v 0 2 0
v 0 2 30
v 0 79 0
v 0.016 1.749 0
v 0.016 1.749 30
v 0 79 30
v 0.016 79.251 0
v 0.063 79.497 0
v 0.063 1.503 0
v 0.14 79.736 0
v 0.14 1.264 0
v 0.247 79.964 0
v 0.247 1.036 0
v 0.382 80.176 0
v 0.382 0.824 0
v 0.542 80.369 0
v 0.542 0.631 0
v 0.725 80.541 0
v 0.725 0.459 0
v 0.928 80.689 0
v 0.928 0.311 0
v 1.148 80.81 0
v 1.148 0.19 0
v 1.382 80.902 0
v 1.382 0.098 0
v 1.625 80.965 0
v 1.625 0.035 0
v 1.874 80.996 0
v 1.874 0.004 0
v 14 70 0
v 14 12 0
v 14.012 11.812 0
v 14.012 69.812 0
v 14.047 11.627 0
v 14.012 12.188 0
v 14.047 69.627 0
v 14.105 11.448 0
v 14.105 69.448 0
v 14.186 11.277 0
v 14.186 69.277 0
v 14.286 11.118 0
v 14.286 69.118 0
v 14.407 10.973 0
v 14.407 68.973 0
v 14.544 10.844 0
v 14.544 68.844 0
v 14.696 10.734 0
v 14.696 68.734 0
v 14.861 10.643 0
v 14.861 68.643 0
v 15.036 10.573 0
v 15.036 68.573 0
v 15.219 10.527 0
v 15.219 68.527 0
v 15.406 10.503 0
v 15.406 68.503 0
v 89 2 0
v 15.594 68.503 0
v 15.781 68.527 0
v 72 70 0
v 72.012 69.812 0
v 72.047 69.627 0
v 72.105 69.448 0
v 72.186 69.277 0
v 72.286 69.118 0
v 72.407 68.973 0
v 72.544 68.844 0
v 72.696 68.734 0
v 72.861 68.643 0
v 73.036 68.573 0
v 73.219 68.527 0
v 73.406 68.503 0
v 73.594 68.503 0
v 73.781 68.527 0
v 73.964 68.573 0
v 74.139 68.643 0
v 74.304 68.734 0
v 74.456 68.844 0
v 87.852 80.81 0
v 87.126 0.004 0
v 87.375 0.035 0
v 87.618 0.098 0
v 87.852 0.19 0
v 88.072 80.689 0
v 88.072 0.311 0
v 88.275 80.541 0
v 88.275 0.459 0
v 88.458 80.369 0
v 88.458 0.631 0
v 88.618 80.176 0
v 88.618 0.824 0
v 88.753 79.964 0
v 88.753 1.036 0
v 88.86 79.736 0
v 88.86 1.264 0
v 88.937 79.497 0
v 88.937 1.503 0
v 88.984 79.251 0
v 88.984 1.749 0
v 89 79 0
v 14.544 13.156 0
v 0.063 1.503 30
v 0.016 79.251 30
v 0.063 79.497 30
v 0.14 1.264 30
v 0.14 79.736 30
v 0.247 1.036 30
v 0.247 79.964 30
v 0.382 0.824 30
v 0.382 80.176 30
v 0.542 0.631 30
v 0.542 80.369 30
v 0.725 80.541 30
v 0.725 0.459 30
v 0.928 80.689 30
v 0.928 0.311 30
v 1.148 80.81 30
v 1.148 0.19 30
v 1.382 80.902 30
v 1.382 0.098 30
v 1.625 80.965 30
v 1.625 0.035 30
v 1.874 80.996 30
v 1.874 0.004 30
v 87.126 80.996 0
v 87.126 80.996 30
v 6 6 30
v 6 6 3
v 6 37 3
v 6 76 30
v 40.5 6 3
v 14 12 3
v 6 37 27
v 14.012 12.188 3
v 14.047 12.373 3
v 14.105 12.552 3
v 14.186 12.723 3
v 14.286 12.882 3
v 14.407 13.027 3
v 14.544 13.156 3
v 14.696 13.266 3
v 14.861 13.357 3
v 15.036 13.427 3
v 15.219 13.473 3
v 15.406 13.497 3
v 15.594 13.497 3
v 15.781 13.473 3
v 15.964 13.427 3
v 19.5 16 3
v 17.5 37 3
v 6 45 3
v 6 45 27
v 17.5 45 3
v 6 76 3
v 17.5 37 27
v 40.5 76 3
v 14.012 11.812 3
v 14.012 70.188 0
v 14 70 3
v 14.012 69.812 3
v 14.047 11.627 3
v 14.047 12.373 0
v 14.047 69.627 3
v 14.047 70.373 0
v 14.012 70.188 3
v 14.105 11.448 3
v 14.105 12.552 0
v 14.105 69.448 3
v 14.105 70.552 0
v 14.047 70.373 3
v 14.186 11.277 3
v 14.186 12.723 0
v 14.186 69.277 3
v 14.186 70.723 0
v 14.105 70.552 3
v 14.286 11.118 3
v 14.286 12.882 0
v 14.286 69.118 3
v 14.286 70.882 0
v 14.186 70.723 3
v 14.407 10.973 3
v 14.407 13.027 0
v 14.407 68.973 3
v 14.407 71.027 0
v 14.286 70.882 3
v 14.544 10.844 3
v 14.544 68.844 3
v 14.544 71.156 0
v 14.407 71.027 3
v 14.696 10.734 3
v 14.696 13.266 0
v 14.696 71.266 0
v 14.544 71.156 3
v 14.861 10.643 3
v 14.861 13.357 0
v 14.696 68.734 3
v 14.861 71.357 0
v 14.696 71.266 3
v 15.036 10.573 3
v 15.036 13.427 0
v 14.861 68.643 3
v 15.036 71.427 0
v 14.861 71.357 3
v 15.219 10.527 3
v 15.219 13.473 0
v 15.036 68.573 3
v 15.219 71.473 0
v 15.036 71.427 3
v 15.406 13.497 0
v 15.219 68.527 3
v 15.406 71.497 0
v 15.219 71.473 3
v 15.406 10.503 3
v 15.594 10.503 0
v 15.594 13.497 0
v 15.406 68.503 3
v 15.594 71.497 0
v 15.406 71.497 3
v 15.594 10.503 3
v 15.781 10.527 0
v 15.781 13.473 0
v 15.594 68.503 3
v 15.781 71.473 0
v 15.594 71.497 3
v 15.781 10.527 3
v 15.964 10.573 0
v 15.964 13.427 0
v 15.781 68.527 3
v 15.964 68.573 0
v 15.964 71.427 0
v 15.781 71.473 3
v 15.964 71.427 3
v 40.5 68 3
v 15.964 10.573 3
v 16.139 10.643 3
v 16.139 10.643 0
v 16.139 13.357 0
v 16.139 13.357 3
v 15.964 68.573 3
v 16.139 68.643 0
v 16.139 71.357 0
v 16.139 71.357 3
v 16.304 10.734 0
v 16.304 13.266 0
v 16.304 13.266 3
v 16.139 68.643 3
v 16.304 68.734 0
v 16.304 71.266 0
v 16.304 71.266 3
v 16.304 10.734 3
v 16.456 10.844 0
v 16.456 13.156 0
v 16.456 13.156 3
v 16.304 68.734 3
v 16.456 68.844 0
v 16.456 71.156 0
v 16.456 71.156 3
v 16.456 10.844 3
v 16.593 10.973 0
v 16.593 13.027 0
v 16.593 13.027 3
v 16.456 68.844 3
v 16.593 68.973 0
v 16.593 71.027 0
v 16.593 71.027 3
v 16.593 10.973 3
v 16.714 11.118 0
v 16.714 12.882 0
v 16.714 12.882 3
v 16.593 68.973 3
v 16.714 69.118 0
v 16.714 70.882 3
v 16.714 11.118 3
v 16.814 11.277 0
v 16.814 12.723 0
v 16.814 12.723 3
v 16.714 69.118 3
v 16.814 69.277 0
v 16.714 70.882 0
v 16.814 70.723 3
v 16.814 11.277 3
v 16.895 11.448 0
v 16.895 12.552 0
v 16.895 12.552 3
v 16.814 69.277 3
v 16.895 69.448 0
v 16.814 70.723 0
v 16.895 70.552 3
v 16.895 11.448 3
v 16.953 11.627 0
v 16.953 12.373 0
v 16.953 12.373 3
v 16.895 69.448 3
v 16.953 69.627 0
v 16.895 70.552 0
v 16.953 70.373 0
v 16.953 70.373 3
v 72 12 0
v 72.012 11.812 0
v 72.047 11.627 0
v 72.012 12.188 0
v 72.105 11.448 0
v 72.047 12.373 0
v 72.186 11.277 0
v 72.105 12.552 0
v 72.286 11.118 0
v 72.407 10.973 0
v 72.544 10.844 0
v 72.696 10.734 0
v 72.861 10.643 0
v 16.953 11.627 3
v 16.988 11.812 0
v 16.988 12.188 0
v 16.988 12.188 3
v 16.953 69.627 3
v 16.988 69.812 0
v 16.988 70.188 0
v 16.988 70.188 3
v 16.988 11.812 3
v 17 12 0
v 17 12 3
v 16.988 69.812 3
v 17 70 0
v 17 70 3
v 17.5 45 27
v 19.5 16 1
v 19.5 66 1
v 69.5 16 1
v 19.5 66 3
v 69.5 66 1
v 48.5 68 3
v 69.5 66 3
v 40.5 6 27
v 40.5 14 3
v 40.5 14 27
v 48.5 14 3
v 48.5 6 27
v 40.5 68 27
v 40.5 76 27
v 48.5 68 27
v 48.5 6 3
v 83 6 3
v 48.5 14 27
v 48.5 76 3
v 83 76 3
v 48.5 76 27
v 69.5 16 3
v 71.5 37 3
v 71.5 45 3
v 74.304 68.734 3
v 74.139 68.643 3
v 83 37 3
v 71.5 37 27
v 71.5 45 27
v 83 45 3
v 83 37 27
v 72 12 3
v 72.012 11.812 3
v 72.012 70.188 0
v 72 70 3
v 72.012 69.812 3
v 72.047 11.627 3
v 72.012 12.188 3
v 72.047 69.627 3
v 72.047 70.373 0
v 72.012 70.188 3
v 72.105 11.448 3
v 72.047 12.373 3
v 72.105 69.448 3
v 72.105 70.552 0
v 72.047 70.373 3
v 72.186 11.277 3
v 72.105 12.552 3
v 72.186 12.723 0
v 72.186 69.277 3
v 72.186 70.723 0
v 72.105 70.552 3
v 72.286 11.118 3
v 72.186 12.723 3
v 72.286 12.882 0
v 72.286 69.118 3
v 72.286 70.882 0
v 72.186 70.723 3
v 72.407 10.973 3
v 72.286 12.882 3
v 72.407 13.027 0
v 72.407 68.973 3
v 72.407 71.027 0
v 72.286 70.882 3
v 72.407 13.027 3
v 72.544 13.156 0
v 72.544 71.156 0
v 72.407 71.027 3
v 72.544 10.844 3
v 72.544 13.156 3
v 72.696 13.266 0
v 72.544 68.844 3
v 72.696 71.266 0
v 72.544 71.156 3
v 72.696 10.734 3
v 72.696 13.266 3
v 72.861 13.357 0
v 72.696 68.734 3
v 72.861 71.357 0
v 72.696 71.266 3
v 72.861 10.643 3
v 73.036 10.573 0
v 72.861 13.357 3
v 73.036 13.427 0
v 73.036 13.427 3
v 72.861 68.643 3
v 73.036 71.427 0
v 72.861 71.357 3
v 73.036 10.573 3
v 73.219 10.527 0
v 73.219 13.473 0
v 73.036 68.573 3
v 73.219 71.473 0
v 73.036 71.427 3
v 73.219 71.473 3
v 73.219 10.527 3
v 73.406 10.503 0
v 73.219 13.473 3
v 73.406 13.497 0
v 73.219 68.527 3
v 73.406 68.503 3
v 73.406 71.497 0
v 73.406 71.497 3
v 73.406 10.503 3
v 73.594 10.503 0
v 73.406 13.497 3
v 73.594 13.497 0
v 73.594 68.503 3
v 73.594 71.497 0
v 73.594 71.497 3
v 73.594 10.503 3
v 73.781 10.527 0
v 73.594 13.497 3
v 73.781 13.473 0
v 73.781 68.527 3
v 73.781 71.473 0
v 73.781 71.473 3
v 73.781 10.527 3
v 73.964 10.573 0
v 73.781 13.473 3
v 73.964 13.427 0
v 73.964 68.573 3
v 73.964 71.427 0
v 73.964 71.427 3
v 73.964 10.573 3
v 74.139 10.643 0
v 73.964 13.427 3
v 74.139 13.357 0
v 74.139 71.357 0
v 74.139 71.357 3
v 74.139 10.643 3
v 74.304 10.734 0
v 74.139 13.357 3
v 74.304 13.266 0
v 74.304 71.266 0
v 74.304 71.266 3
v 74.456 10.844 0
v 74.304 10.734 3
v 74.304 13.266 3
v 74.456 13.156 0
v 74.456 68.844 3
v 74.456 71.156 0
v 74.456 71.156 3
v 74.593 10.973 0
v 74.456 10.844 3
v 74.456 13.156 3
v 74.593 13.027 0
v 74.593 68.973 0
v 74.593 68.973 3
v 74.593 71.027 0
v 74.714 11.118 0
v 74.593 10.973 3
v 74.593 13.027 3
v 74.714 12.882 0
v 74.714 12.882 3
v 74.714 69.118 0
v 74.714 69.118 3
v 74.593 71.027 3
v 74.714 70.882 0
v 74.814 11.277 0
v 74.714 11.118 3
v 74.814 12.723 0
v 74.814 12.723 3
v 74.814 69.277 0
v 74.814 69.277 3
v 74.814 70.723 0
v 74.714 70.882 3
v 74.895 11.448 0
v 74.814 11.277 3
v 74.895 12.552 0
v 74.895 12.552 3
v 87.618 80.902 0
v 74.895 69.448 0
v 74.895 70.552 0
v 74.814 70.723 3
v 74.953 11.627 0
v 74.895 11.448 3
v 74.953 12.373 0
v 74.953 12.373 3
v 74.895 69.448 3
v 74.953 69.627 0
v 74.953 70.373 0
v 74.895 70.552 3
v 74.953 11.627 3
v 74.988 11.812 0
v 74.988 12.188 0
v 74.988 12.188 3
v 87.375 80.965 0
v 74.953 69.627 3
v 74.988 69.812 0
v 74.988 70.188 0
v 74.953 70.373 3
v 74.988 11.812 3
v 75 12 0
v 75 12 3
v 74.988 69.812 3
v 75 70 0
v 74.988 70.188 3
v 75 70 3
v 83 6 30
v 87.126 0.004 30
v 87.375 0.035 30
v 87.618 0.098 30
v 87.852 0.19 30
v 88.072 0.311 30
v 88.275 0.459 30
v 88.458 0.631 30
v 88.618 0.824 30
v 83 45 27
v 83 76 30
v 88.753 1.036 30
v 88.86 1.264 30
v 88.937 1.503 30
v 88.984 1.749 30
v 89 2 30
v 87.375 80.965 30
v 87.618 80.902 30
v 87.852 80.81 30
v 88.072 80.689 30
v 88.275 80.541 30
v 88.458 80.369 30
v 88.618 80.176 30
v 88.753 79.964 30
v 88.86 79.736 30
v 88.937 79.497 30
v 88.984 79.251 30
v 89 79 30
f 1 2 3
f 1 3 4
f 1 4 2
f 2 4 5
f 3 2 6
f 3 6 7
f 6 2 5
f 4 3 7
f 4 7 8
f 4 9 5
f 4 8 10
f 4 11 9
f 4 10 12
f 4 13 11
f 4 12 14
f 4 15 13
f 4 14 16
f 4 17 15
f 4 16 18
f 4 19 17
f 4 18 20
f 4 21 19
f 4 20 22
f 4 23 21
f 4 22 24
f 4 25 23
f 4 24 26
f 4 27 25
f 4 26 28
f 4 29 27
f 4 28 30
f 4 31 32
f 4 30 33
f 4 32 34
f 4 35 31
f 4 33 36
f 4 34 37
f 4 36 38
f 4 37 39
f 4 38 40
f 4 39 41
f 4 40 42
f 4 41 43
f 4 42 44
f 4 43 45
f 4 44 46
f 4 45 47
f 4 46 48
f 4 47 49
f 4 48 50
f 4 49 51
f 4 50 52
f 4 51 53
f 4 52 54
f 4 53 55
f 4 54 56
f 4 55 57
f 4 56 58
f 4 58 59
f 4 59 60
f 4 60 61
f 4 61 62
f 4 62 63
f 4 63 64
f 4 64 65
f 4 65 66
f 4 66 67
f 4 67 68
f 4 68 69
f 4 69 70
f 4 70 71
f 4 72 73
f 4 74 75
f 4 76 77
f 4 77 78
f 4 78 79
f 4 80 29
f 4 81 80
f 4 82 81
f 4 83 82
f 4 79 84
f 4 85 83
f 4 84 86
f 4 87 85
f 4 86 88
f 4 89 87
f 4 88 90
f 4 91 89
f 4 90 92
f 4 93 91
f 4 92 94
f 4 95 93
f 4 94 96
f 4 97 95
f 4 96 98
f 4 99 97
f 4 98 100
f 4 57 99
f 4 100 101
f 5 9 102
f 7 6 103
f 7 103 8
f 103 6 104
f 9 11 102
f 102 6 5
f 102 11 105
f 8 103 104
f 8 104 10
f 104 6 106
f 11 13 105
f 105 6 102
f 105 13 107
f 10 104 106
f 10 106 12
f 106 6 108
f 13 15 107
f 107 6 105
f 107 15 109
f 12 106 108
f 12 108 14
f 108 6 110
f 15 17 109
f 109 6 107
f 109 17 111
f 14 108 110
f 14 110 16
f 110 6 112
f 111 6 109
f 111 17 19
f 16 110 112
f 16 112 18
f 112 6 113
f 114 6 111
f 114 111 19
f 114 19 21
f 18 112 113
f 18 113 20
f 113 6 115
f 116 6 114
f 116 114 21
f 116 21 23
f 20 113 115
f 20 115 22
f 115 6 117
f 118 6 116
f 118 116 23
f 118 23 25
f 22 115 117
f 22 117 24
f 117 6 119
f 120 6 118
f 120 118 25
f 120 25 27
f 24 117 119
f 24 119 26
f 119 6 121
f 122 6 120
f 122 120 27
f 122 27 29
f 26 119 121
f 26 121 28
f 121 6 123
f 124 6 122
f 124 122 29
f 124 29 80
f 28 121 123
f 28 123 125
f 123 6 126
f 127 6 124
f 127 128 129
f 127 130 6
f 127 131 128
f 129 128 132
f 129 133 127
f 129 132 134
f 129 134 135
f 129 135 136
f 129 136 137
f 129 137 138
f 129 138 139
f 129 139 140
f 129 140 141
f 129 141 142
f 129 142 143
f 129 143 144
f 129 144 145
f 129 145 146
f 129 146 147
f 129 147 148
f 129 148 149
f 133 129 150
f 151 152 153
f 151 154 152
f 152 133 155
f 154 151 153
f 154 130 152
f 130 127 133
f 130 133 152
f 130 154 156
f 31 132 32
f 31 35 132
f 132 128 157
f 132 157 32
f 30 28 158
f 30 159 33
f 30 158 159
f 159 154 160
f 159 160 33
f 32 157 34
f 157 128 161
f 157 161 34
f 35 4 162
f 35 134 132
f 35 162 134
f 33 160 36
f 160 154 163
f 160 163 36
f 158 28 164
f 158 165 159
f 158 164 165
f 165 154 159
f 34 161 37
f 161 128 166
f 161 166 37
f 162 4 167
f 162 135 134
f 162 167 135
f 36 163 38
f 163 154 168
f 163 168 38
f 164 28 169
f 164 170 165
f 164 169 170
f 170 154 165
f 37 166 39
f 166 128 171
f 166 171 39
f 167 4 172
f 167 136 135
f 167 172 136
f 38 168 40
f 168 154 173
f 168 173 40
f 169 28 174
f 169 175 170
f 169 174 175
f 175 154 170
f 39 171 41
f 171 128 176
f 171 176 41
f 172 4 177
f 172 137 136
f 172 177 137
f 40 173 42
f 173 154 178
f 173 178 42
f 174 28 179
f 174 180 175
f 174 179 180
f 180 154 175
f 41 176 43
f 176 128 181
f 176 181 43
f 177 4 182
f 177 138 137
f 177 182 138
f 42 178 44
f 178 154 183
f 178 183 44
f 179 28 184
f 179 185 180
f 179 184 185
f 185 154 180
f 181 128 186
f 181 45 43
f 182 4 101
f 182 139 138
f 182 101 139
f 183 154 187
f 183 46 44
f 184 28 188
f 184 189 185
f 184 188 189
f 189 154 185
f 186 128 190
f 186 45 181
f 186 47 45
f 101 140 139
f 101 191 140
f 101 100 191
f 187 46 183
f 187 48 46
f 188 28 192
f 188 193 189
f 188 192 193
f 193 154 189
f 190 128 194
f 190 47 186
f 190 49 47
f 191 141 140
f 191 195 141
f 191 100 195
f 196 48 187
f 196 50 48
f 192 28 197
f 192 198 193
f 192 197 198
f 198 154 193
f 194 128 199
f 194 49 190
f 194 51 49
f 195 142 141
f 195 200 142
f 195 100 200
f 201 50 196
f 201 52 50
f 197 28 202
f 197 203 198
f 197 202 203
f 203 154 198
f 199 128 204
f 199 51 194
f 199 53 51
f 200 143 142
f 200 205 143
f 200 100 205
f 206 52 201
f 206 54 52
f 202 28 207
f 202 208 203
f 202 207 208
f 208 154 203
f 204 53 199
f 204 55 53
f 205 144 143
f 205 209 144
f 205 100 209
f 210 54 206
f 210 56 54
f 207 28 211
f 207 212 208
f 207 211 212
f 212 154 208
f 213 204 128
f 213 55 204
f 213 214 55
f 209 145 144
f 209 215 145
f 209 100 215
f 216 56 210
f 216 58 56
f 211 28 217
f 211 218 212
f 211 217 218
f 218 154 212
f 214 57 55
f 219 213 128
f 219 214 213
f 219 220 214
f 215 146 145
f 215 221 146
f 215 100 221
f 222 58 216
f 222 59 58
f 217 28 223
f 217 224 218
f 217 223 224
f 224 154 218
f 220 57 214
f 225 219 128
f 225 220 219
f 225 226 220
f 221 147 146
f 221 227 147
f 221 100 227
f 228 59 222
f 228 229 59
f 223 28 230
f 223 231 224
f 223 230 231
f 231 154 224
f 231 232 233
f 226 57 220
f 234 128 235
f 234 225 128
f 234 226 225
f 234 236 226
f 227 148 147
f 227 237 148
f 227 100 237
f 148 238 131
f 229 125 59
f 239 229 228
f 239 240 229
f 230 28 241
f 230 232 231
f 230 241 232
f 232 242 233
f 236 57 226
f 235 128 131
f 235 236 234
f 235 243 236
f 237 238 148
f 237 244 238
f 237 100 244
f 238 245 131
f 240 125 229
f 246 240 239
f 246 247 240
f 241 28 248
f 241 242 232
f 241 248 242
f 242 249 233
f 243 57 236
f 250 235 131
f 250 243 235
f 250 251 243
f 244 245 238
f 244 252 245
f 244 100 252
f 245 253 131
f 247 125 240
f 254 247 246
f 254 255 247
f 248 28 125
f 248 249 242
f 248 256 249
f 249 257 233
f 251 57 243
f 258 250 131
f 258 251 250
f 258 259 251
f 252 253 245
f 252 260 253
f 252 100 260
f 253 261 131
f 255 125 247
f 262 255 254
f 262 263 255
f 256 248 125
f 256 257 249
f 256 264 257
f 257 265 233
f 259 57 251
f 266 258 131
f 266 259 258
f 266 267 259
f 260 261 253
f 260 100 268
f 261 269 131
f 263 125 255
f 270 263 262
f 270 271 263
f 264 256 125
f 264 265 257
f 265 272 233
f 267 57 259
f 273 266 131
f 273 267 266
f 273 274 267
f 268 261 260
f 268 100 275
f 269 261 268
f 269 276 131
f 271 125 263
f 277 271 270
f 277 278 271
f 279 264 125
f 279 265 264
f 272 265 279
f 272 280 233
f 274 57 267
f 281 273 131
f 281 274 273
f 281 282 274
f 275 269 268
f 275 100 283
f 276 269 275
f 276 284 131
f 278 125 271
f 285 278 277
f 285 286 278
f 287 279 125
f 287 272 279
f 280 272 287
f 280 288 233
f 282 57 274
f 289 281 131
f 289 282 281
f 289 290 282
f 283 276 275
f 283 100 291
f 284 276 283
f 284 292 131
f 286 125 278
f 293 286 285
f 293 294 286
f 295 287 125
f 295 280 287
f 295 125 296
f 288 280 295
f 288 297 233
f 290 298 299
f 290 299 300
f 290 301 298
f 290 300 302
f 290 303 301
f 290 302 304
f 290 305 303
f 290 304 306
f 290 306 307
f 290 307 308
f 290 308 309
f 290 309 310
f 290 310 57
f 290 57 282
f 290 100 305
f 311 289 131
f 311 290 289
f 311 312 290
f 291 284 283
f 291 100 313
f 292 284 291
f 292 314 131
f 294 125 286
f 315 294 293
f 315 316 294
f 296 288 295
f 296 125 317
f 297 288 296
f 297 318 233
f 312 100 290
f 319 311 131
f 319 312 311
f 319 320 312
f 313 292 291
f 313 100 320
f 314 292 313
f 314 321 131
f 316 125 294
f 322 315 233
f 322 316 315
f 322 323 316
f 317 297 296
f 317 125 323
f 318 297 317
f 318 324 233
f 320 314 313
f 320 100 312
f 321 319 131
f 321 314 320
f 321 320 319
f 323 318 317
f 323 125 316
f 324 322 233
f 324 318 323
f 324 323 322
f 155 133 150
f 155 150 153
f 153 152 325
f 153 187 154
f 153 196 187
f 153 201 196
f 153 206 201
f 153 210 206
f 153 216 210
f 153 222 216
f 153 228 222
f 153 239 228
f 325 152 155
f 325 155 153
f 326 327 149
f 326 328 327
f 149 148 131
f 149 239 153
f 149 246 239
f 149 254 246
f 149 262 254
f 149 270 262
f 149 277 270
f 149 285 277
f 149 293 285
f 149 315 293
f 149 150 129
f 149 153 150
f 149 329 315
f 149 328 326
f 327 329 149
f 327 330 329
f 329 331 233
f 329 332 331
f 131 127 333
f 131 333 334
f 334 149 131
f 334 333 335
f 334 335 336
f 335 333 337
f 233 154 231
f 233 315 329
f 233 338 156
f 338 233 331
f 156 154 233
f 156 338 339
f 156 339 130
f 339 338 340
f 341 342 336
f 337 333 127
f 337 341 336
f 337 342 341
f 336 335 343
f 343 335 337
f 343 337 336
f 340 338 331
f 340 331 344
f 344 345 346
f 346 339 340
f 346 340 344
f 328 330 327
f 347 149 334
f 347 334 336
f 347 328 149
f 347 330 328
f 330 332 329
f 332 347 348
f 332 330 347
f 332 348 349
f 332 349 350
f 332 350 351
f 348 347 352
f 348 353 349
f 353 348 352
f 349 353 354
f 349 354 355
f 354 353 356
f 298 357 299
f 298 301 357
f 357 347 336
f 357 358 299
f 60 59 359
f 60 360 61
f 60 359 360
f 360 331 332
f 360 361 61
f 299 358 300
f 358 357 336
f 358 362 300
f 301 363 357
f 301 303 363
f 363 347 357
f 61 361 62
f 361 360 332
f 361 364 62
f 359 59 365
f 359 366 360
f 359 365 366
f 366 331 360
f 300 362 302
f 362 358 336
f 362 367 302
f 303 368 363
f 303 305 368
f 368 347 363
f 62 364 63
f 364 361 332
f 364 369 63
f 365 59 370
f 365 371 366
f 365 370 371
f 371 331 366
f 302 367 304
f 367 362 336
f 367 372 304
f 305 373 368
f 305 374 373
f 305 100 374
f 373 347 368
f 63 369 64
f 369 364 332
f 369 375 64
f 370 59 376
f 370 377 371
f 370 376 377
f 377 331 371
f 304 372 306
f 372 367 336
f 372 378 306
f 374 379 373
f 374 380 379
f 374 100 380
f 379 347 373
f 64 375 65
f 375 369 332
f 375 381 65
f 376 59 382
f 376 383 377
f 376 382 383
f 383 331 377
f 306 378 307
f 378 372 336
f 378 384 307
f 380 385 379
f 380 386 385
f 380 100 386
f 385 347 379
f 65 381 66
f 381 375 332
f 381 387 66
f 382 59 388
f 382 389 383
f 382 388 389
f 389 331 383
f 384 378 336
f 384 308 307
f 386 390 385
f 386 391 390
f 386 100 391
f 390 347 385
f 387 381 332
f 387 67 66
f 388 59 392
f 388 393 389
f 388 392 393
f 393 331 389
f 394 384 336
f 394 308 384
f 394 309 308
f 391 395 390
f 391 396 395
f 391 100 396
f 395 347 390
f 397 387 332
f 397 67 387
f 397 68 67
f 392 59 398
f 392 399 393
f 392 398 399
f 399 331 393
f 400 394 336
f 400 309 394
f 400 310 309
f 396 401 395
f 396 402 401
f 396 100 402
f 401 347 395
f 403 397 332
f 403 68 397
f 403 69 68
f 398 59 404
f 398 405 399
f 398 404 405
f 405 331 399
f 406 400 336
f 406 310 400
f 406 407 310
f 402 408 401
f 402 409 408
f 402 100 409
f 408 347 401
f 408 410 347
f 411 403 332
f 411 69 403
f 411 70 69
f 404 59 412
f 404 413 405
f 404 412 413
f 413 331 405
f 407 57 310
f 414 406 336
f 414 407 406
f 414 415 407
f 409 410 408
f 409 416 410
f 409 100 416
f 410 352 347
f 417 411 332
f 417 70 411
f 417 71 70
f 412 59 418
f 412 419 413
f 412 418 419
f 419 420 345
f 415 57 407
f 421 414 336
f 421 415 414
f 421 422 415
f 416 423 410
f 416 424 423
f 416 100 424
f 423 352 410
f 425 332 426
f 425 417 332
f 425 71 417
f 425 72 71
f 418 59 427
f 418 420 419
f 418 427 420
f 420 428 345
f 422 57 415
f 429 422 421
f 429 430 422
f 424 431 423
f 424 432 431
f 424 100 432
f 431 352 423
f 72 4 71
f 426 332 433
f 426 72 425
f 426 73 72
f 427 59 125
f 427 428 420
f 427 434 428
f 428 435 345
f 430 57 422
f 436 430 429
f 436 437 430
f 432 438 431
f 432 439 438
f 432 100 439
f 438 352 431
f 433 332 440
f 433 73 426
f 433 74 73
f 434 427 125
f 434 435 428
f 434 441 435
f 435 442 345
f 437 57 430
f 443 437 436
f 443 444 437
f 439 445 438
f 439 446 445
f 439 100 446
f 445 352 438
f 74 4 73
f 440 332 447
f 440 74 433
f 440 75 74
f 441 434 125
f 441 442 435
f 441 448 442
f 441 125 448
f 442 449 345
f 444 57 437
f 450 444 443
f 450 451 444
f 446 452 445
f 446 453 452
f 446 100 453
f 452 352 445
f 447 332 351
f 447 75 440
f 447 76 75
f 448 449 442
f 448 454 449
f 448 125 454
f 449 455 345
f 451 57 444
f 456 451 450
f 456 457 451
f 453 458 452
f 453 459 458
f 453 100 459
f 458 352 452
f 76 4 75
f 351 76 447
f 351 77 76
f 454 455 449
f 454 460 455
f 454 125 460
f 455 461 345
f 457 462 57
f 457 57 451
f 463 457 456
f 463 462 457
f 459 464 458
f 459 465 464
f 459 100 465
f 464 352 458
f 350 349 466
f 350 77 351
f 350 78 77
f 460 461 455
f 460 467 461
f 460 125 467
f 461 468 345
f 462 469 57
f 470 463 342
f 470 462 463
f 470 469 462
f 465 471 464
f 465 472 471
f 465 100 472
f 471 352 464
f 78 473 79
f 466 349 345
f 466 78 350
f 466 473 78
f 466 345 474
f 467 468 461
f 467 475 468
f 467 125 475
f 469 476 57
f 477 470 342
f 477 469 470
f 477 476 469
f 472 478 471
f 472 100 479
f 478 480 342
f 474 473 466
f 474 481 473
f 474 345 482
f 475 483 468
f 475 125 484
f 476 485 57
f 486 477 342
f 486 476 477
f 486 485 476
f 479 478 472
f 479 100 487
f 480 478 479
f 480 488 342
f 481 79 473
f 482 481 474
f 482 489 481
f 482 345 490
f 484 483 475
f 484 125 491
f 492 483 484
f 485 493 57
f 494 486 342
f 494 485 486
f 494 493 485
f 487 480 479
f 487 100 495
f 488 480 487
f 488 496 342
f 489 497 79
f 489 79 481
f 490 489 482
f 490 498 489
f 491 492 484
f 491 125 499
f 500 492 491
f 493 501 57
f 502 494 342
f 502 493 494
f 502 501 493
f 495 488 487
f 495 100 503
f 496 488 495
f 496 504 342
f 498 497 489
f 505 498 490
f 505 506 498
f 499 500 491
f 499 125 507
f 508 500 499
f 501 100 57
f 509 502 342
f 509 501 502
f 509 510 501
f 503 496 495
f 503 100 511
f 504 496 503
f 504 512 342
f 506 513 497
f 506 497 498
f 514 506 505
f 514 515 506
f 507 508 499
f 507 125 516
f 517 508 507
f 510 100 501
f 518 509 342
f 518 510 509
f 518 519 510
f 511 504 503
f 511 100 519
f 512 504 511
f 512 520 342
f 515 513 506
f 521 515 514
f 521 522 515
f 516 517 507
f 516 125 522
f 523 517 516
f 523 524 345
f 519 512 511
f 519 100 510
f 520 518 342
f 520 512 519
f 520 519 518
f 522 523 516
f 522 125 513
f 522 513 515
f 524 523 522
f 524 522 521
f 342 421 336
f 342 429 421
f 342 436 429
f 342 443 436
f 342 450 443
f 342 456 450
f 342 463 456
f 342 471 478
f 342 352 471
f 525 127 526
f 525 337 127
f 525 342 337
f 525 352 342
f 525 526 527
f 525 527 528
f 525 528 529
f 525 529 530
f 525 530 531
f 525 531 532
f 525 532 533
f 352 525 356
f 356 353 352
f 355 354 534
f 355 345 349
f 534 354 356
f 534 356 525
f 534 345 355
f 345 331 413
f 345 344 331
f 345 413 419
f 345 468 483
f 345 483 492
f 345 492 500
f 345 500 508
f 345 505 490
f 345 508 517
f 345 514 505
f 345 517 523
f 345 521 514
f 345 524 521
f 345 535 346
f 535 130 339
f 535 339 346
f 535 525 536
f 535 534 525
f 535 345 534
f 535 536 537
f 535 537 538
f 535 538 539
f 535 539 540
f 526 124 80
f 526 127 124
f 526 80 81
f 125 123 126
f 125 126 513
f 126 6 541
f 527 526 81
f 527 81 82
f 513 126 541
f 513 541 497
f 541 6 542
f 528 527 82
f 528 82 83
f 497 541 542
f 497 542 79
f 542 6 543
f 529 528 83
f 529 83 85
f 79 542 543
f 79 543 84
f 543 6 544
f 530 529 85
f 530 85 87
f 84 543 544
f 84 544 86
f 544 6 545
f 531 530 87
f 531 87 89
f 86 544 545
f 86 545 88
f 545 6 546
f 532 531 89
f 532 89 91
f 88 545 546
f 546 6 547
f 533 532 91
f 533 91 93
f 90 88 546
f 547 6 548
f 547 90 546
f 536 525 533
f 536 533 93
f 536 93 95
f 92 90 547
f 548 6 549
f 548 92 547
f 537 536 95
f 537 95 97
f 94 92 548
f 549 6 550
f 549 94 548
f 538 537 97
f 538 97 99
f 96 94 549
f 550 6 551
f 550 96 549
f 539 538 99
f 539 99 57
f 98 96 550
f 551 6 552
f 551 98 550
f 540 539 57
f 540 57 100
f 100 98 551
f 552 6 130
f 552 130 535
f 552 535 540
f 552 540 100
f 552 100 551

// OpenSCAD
$fn=50;

union() {
    difference() {
        translate([2, 2, 0])
        minkowski() {
            //original box without round corner: cube([89, 81, 30]);
            cube([85, 77, 29]);
            cylinder(r=2,h=1);
        }
        // volume intérieur
        translate([6, 6, 3])
            cube([77, 70, 28]);
        // décaissement du fond
        translate([19.5, 16, 1])
            cube([50, 50, 29]);
        // trous de fixation
        translate([15.5, 12, -1])
            cylinder(5, 1.5, 1.5);
        translate([73.5, 12, -1])
            cylinder(5, 1.5, 1.5);
        translate([15.5, 70, -1])
            cylinder(5, 1.5, 1.5);
        translate([73.5, 70, -1])
            cylinder(5, 1.5, 1.5);
    }
    // plots de fixation de la plaque
    translate([40.5, 6, 0])
        cube([8, 8, 27]);
    translate([40.5, 68, 0])
        cube([8, 8, 27]);

    translate([6, 37, 0])
        cube([11.5, 8, 27]);
    translate([71.5, 37, 0])
        cube([11.5, 8, 27]);
}
